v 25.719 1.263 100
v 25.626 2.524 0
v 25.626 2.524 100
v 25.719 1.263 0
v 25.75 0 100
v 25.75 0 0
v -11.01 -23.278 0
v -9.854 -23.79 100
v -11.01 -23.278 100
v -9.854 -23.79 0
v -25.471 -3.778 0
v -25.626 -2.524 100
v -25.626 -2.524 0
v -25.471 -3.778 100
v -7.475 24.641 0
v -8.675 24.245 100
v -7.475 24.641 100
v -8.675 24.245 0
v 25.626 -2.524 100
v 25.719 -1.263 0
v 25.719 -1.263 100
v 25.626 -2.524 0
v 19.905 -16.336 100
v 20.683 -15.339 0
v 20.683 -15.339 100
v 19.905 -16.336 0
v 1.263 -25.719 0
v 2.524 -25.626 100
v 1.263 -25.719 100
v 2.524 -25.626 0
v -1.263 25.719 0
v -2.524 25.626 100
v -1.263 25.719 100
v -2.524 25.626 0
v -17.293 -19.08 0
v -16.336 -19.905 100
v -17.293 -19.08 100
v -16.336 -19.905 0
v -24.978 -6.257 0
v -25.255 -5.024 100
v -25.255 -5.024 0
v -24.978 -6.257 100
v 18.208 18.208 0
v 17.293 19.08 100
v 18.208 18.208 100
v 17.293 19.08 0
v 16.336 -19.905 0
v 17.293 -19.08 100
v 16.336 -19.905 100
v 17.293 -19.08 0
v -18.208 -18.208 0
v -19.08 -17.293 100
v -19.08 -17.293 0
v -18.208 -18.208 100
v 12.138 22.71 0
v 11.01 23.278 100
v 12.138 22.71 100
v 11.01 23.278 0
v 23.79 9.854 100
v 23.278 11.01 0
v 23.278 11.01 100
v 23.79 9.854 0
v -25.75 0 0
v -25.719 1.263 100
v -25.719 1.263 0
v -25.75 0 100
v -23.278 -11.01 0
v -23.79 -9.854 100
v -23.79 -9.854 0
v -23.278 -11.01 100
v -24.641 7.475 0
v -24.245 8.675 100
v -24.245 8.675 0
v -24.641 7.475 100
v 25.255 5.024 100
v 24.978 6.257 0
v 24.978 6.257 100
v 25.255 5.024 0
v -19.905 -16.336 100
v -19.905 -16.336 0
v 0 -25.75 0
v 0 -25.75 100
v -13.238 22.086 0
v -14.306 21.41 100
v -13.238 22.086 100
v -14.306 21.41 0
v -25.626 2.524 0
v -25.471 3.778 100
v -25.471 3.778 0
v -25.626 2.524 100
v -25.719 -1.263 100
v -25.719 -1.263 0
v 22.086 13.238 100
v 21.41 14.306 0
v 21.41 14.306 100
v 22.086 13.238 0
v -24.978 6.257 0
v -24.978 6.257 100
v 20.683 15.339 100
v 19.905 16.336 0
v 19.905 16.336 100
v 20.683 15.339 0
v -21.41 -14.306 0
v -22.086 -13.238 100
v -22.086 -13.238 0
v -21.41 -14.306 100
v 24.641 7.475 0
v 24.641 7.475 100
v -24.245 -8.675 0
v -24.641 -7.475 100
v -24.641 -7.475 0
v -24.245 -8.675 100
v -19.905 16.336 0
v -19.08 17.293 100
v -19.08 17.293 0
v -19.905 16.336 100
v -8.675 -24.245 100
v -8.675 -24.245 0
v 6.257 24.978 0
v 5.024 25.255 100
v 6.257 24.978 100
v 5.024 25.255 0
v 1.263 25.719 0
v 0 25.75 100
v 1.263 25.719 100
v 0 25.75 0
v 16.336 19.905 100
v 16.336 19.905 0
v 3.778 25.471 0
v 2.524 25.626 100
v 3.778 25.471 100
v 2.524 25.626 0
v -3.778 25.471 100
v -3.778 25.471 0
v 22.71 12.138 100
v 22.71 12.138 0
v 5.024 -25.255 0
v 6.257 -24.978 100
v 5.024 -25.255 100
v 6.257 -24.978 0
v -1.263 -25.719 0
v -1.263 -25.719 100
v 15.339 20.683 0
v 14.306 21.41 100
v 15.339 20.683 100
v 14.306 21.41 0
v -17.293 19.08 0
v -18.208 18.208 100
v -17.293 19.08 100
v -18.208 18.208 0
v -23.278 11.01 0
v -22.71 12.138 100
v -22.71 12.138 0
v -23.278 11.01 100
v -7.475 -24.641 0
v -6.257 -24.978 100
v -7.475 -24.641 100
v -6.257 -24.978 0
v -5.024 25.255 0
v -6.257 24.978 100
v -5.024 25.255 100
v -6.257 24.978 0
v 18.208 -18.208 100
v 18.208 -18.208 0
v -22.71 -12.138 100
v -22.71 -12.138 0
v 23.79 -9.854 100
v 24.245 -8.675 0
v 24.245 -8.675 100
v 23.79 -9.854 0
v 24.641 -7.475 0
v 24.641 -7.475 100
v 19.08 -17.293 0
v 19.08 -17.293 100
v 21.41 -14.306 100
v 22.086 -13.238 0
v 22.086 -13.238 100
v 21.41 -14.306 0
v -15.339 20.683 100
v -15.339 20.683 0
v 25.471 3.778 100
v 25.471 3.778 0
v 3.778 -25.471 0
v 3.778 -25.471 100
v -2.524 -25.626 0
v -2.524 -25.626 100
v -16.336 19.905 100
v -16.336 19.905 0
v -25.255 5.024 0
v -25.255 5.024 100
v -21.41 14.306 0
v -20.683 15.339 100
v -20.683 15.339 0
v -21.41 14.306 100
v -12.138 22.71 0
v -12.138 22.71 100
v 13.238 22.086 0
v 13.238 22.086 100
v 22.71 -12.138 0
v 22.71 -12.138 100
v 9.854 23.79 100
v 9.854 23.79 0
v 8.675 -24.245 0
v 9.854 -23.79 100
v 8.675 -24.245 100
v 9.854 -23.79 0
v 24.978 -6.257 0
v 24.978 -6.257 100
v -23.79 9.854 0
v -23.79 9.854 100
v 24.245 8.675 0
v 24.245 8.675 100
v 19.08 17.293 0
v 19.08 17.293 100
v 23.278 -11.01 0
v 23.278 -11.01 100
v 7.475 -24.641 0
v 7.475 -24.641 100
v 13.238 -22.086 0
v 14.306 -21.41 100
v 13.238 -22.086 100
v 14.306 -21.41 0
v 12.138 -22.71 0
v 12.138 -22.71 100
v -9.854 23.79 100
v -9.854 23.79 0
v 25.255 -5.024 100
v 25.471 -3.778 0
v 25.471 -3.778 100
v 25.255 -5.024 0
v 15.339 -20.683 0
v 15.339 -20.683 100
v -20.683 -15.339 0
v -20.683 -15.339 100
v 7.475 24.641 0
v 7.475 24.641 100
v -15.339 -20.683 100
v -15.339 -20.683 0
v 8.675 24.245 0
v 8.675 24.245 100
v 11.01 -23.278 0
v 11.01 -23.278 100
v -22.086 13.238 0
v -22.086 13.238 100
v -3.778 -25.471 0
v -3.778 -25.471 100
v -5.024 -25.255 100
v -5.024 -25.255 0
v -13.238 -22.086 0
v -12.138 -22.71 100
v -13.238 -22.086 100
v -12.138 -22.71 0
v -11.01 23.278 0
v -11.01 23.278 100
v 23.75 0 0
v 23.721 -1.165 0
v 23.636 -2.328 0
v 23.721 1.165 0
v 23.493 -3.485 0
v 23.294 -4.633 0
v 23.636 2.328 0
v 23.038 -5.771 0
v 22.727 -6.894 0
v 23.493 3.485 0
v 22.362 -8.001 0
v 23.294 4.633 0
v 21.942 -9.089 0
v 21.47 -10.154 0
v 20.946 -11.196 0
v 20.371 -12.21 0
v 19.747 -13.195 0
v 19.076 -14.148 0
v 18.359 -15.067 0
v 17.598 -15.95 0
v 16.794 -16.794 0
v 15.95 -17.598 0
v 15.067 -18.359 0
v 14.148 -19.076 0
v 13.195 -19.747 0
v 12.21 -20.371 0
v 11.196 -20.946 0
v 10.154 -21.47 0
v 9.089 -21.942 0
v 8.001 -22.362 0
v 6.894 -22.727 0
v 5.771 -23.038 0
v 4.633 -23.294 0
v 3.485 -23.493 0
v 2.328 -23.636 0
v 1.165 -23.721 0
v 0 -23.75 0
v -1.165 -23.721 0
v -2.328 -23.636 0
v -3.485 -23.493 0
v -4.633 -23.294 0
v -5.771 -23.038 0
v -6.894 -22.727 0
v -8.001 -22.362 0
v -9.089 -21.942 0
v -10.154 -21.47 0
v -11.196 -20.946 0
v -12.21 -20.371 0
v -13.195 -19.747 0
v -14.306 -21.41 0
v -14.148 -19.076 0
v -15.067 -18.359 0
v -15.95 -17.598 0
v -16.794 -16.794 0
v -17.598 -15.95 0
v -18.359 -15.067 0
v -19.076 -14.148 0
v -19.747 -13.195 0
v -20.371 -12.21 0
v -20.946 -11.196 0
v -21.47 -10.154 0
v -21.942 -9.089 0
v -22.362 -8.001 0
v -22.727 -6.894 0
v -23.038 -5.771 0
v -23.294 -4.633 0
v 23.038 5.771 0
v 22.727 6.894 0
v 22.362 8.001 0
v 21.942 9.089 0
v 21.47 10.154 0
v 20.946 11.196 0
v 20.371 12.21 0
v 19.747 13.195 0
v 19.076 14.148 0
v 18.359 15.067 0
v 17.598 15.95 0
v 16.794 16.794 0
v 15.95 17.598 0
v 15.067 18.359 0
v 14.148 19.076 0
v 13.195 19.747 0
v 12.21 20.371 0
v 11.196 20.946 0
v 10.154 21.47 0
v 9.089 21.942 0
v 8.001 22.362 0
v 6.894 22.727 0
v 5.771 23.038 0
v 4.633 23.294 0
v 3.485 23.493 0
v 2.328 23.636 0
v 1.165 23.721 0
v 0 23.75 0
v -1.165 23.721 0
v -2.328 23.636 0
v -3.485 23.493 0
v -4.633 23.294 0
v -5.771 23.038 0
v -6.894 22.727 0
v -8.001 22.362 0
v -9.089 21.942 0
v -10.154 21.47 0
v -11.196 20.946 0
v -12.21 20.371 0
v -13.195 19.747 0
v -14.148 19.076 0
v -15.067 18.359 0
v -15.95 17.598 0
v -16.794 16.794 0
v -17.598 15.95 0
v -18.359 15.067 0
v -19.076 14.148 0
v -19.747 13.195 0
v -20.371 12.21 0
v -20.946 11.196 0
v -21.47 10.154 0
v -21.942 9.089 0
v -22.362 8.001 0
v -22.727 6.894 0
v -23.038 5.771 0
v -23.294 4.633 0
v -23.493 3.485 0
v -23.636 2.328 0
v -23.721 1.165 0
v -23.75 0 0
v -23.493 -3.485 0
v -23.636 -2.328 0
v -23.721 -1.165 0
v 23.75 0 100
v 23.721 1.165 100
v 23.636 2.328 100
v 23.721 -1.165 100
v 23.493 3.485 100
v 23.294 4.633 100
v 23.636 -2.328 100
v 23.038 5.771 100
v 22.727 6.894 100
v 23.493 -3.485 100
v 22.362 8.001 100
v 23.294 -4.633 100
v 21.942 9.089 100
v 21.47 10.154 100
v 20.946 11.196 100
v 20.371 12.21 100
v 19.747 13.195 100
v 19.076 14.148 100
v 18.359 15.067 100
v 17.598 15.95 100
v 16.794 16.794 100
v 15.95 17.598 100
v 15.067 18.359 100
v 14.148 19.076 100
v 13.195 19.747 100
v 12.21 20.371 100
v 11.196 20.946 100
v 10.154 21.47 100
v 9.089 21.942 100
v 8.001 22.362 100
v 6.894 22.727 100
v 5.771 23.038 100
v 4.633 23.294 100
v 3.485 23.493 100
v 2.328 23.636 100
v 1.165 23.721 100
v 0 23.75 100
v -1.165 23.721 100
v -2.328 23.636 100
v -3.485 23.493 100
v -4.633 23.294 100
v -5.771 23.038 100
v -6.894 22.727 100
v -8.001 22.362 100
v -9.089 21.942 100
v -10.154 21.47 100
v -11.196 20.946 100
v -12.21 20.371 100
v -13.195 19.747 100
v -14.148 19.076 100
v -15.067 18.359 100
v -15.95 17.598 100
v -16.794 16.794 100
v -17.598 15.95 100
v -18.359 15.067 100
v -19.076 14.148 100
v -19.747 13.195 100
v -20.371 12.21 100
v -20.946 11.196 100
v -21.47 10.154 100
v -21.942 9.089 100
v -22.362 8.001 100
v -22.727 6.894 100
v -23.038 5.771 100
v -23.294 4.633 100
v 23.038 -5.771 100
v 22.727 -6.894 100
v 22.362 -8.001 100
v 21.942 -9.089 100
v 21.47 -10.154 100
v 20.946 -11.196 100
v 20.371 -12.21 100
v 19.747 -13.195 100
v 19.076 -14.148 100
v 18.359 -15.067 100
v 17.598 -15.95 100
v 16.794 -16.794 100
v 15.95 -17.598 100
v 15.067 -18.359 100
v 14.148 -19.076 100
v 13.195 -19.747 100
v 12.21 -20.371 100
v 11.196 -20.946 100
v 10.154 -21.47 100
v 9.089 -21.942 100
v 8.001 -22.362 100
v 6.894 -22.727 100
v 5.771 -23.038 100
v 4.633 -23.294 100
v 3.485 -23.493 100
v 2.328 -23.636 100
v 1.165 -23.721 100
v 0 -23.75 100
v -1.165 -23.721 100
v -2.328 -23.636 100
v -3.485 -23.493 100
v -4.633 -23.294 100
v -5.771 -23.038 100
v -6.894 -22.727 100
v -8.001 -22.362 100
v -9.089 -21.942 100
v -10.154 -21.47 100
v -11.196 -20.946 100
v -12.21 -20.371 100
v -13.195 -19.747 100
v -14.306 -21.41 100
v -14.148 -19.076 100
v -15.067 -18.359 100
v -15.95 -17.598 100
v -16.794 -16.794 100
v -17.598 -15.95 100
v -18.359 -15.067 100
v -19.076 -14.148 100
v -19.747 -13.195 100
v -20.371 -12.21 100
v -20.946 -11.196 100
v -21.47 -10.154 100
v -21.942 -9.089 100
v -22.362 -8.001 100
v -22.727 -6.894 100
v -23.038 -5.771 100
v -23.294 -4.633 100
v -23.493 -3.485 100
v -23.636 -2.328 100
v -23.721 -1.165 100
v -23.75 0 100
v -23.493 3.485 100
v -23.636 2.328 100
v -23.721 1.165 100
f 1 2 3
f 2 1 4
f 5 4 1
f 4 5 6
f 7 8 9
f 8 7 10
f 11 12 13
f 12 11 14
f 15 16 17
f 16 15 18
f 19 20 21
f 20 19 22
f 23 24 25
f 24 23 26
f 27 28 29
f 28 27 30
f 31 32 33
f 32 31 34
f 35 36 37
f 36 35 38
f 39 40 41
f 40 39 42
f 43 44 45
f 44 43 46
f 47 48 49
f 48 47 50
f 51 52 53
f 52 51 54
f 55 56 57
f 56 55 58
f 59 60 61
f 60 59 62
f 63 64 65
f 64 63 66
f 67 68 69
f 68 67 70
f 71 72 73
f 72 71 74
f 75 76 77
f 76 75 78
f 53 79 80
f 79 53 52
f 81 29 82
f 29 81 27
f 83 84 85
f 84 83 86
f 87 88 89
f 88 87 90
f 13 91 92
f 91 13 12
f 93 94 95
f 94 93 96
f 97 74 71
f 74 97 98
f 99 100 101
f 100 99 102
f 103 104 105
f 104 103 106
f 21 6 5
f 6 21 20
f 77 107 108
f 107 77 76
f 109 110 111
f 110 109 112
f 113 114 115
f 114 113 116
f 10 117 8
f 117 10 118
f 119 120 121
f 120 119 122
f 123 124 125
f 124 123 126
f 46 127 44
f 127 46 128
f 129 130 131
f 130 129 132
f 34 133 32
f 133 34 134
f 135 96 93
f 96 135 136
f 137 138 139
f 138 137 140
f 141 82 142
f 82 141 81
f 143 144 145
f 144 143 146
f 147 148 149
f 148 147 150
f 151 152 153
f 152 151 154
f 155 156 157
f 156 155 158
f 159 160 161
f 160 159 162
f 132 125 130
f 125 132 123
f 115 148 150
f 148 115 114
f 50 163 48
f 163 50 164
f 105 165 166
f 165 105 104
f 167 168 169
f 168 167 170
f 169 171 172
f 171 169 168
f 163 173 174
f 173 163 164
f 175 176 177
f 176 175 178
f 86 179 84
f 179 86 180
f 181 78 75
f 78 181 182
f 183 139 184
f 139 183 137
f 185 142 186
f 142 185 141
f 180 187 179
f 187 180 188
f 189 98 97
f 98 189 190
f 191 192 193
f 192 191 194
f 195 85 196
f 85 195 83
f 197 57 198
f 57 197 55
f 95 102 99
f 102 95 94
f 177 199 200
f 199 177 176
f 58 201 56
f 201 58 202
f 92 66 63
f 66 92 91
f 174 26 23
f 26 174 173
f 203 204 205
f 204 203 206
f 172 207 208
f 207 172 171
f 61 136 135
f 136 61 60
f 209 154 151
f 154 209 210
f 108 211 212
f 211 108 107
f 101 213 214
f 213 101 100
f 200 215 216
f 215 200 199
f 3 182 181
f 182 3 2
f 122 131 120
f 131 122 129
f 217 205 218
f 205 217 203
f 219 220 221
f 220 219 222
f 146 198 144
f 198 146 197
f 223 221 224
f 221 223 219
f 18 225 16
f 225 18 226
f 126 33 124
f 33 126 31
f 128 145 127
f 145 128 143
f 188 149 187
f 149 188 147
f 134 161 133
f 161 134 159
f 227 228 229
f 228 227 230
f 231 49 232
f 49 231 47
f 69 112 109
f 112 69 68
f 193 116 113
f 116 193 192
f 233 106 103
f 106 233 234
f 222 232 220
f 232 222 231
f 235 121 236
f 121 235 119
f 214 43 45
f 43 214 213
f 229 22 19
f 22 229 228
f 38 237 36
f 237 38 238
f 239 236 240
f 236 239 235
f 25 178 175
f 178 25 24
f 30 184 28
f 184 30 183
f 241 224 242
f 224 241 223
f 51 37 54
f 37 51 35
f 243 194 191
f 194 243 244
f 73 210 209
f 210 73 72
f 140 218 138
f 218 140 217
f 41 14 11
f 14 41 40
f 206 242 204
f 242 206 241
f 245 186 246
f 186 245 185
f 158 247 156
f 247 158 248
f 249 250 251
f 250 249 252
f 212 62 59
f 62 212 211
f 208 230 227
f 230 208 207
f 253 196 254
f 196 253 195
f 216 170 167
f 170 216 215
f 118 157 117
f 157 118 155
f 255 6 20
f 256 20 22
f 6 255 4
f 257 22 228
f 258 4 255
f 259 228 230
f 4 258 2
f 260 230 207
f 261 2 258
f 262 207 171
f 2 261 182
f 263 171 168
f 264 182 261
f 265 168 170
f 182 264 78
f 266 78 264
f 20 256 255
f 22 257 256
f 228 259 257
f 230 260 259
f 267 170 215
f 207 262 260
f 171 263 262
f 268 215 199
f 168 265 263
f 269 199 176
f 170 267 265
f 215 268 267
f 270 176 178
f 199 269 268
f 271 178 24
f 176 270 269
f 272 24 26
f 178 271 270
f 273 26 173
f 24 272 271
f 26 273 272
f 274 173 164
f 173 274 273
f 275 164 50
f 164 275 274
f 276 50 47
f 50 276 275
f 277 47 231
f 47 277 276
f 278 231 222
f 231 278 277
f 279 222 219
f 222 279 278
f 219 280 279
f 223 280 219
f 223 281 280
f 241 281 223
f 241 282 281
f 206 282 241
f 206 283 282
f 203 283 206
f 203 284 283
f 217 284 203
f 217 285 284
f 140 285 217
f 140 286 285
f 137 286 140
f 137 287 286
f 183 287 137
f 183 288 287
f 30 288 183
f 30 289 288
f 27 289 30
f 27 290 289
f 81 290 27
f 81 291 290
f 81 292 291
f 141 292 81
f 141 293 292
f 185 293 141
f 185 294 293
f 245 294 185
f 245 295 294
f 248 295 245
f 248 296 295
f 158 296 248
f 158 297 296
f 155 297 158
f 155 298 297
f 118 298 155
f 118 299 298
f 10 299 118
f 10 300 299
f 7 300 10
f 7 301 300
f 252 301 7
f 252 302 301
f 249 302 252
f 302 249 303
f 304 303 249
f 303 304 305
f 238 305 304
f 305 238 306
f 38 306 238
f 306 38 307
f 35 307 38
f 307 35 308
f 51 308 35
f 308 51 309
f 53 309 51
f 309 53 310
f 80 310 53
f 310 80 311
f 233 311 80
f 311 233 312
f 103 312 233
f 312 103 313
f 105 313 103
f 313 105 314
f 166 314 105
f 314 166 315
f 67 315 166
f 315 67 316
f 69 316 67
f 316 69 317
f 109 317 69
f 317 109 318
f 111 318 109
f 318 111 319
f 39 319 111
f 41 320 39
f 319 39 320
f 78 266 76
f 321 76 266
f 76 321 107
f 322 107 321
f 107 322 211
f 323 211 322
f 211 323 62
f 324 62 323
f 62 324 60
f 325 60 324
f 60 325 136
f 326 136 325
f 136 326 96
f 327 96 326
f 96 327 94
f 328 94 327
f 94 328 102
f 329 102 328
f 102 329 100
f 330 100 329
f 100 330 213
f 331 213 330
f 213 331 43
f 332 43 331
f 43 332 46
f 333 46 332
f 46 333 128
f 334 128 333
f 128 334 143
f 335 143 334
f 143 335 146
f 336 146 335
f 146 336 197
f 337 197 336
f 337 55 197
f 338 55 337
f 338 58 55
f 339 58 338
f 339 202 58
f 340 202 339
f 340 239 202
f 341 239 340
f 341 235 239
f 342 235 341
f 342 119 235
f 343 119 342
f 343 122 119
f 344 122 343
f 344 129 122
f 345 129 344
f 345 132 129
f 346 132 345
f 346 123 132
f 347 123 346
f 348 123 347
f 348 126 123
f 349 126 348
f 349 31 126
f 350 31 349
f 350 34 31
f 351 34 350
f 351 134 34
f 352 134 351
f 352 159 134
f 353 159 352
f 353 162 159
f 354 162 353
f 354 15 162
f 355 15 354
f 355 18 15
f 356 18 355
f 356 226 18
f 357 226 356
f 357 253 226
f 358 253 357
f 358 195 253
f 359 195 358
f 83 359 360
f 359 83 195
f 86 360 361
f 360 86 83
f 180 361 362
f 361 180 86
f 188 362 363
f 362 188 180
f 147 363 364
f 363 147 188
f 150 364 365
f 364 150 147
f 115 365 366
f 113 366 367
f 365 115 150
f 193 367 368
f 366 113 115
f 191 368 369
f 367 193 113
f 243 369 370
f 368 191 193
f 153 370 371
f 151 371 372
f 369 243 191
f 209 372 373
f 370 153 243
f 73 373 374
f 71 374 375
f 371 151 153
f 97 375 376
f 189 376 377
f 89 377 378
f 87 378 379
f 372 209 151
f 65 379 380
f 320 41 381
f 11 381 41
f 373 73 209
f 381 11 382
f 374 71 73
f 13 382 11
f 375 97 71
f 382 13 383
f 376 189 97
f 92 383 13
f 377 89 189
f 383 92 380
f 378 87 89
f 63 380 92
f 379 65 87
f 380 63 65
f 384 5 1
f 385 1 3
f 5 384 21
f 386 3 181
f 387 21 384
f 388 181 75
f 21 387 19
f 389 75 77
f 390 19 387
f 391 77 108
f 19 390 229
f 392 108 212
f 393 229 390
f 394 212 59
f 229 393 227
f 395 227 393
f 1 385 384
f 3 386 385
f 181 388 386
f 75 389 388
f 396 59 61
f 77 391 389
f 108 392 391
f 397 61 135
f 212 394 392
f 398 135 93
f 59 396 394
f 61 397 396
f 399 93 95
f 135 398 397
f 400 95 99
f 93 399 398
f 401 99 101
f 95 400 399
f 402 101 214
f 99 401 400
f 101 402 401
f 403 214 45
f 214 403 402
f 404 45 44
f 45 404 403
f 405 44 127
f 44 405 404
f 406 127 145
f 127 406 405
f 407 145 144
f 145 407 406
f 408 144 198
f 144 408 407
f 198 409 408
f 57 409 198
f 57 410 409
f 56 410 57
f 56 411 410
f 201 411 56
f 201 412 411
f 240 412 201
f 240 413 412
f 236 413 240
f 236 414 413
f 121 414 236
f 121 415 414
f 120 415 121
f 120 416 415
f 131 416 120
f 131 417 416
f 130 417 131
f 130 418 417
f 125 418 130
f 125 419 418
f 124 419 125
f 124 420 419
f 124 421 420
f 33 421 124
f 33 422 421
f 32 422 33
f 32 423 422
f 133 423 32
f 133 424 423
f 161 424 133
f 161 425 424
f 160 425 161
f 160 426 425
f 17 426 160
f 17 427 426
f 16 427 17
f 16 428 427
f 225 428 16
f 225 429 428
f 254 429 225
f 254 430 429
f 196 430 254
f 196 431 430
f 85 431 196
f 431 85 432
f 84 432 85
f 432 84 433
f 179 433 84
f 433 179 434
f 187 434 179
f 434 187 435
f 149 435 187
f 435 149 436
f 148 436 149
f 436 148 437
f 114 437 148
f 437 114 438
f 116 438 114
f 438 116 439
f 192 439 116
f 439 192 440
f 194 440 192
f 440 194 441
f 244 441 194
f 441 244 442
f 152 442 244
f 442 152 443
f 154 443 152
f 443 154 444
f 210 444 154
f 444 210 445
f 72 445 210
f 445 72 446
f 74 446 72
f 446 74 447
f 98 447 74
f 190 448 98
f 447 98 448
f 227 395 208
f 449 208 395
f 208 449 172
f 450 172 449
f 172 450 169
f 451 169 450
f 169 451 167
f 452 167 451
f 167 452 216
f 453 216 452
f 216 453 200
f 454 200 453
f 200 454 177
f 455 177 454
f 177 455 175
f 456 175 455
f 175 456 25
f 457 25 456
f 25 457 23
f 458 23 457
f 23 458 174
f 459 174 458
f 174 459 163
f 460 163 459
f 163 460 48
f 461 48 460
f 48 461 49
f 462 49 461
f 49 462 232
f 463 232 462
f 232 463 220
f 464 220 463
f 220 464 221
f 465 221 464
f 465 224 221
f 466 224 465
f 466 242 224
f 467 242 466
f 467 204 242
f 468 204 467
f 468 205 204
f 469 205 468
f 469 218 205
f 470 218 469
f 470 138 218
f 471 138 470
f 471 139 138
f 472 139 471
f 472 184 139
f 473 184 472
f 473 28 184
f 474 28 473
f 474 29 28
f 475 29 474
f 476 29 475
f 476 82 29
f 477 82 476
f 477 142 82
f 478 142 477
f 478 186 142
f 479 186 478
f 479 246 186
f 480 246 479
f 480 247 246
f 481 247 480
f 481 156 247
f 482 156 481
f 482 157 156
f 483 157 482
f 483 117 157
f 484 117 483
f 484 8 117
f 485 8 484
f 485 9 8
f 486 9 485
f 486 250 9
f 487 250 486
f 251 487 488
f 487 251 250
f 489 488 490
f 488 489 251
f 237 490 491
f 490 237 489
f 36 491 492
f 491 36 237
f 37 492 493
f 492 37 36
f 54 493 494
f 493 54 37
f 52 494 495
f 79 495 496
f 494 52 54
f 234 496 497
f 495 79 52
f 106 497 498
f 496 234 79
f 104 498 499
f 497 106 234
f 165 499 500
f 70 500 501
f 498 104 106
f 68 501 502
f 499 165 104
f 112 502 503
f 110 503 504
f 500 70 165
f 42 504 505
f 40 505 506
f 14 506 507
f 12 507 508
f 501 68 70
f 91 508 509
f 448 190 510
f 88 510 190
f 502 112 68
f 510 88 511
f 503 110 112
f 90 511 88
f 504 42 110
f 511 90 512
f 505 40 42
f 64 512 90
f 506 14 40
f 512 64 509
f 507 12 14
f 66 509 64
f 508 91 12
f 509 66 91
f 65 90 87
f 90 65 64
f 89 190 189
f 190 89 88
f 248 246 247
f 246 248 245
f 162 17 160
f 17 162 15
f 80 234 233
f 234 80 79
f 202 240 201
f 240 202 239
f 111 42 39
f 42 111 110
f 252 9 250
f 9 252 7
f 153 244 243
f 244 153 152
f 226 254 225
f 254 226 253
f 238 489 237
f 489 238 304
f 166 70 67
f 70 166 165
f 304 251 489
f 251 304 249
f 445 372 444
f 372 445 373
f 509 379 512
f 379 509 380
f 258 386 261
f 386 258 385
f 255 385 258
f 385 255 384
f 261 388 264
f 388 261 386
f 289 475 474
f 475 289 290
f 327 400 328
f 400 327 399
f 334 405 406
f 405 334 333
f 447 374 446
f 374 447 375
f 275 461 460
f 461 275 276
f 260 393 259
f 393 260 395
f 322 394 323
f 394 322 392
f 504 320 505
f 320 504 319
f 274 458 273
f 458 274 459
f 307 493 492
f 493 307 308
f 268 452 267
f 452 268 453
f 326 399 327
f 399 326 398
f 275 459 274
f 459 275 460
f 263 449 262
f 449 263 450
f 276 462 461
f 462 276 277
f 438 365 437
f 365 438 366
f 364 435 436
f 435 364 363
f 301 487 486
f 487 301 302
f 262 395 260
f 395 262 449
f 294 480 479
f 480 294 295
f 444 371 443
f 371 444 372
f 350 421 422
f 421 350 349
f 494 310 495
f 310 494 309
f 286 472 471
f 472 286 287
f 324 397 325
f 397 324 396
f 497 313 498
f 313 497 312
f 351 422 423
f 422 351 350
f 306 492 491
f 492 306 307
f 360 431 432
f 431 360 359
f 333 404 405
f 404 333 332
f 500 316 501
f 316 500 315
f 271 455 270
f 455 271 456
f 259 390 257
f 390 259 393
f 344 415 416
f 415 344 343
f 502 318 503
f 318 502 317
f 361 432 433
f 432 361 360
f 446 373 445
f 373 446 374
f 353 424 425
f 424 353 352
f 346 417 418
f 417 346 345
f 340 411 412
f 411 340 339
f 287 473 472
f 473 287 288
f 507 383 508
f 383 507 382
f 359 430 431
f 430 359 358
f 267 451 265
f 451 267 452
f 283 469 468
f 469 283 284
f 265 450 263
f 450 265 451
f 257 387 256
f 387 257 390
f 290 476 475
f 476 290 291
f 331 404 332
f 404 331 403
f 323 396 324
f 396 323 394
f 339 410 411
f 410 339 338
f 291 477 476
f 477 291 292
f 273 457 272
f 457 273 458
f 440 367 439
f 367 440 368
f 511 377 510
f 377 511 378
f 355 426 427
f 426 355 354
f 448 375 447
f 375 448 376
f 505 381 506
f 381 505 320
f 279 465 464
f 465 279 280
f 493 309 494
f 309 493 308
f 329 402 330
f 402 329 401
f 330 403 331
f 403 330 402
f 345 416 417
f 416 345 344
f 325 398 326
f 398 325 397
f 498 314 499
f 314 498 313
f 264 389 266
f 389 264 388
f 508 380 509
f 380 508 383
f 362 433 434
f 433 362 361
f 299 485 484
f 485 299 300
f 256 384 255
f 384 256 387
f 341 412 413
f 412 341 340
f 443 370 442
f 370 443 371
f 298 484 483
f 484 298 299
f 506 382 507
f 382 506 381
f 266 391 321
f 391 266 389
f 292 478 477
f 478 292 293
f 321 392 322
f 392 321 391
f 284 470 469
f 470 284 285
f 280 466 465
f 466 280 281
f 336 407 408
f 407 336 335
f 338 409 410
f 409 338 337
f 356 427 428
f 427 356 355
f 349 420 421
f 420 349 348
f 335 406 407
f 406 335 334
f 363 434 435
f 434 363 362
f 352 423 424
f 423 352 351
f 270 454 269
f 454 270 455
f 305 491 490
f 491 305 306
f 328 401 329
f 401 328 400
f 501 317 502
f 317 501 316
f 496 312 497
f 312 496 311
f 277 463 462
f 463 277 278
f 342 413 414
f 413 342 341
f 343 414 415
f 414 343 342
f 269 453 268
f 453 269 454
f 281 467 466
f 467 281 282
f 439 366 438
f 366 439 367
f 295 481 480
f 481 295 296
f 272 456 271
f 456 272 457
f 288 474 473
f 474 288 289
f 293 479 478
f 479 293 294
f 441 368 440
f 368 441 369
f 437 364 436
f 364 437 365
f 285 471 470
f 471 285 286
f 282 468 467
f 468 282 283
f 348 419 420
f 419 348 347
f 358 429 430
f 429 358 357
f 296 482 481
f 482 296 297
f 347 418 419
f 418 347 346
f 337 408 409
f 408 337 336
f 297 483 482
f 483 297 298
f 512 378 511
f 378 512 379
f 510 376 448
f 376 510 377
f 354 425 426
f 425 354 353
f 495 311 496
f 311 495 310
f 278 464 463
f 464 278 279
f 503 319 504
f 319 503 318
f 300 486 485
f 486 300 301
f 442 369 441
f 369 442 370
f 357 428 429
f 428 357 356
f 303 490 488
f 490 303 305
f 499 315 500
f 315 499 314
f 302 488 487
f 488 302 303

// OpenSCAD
// Galilean Focuser Tube (滑动调焦管)

tube_length = 100;
tube_od = 51.5; // 略小于主管内径(52)，留作滑动和贴植绒布空间
tube_id = 47.5;

module focuser_tube() {
    difference() {
        cylinder(d=tube_od, h=tube_length, $fn=128);
        translate([0, 0, -1])
        cylinder(d=tube_id, h=tube_length + 2, $fn=128);
    }
}

focuser_tube();
